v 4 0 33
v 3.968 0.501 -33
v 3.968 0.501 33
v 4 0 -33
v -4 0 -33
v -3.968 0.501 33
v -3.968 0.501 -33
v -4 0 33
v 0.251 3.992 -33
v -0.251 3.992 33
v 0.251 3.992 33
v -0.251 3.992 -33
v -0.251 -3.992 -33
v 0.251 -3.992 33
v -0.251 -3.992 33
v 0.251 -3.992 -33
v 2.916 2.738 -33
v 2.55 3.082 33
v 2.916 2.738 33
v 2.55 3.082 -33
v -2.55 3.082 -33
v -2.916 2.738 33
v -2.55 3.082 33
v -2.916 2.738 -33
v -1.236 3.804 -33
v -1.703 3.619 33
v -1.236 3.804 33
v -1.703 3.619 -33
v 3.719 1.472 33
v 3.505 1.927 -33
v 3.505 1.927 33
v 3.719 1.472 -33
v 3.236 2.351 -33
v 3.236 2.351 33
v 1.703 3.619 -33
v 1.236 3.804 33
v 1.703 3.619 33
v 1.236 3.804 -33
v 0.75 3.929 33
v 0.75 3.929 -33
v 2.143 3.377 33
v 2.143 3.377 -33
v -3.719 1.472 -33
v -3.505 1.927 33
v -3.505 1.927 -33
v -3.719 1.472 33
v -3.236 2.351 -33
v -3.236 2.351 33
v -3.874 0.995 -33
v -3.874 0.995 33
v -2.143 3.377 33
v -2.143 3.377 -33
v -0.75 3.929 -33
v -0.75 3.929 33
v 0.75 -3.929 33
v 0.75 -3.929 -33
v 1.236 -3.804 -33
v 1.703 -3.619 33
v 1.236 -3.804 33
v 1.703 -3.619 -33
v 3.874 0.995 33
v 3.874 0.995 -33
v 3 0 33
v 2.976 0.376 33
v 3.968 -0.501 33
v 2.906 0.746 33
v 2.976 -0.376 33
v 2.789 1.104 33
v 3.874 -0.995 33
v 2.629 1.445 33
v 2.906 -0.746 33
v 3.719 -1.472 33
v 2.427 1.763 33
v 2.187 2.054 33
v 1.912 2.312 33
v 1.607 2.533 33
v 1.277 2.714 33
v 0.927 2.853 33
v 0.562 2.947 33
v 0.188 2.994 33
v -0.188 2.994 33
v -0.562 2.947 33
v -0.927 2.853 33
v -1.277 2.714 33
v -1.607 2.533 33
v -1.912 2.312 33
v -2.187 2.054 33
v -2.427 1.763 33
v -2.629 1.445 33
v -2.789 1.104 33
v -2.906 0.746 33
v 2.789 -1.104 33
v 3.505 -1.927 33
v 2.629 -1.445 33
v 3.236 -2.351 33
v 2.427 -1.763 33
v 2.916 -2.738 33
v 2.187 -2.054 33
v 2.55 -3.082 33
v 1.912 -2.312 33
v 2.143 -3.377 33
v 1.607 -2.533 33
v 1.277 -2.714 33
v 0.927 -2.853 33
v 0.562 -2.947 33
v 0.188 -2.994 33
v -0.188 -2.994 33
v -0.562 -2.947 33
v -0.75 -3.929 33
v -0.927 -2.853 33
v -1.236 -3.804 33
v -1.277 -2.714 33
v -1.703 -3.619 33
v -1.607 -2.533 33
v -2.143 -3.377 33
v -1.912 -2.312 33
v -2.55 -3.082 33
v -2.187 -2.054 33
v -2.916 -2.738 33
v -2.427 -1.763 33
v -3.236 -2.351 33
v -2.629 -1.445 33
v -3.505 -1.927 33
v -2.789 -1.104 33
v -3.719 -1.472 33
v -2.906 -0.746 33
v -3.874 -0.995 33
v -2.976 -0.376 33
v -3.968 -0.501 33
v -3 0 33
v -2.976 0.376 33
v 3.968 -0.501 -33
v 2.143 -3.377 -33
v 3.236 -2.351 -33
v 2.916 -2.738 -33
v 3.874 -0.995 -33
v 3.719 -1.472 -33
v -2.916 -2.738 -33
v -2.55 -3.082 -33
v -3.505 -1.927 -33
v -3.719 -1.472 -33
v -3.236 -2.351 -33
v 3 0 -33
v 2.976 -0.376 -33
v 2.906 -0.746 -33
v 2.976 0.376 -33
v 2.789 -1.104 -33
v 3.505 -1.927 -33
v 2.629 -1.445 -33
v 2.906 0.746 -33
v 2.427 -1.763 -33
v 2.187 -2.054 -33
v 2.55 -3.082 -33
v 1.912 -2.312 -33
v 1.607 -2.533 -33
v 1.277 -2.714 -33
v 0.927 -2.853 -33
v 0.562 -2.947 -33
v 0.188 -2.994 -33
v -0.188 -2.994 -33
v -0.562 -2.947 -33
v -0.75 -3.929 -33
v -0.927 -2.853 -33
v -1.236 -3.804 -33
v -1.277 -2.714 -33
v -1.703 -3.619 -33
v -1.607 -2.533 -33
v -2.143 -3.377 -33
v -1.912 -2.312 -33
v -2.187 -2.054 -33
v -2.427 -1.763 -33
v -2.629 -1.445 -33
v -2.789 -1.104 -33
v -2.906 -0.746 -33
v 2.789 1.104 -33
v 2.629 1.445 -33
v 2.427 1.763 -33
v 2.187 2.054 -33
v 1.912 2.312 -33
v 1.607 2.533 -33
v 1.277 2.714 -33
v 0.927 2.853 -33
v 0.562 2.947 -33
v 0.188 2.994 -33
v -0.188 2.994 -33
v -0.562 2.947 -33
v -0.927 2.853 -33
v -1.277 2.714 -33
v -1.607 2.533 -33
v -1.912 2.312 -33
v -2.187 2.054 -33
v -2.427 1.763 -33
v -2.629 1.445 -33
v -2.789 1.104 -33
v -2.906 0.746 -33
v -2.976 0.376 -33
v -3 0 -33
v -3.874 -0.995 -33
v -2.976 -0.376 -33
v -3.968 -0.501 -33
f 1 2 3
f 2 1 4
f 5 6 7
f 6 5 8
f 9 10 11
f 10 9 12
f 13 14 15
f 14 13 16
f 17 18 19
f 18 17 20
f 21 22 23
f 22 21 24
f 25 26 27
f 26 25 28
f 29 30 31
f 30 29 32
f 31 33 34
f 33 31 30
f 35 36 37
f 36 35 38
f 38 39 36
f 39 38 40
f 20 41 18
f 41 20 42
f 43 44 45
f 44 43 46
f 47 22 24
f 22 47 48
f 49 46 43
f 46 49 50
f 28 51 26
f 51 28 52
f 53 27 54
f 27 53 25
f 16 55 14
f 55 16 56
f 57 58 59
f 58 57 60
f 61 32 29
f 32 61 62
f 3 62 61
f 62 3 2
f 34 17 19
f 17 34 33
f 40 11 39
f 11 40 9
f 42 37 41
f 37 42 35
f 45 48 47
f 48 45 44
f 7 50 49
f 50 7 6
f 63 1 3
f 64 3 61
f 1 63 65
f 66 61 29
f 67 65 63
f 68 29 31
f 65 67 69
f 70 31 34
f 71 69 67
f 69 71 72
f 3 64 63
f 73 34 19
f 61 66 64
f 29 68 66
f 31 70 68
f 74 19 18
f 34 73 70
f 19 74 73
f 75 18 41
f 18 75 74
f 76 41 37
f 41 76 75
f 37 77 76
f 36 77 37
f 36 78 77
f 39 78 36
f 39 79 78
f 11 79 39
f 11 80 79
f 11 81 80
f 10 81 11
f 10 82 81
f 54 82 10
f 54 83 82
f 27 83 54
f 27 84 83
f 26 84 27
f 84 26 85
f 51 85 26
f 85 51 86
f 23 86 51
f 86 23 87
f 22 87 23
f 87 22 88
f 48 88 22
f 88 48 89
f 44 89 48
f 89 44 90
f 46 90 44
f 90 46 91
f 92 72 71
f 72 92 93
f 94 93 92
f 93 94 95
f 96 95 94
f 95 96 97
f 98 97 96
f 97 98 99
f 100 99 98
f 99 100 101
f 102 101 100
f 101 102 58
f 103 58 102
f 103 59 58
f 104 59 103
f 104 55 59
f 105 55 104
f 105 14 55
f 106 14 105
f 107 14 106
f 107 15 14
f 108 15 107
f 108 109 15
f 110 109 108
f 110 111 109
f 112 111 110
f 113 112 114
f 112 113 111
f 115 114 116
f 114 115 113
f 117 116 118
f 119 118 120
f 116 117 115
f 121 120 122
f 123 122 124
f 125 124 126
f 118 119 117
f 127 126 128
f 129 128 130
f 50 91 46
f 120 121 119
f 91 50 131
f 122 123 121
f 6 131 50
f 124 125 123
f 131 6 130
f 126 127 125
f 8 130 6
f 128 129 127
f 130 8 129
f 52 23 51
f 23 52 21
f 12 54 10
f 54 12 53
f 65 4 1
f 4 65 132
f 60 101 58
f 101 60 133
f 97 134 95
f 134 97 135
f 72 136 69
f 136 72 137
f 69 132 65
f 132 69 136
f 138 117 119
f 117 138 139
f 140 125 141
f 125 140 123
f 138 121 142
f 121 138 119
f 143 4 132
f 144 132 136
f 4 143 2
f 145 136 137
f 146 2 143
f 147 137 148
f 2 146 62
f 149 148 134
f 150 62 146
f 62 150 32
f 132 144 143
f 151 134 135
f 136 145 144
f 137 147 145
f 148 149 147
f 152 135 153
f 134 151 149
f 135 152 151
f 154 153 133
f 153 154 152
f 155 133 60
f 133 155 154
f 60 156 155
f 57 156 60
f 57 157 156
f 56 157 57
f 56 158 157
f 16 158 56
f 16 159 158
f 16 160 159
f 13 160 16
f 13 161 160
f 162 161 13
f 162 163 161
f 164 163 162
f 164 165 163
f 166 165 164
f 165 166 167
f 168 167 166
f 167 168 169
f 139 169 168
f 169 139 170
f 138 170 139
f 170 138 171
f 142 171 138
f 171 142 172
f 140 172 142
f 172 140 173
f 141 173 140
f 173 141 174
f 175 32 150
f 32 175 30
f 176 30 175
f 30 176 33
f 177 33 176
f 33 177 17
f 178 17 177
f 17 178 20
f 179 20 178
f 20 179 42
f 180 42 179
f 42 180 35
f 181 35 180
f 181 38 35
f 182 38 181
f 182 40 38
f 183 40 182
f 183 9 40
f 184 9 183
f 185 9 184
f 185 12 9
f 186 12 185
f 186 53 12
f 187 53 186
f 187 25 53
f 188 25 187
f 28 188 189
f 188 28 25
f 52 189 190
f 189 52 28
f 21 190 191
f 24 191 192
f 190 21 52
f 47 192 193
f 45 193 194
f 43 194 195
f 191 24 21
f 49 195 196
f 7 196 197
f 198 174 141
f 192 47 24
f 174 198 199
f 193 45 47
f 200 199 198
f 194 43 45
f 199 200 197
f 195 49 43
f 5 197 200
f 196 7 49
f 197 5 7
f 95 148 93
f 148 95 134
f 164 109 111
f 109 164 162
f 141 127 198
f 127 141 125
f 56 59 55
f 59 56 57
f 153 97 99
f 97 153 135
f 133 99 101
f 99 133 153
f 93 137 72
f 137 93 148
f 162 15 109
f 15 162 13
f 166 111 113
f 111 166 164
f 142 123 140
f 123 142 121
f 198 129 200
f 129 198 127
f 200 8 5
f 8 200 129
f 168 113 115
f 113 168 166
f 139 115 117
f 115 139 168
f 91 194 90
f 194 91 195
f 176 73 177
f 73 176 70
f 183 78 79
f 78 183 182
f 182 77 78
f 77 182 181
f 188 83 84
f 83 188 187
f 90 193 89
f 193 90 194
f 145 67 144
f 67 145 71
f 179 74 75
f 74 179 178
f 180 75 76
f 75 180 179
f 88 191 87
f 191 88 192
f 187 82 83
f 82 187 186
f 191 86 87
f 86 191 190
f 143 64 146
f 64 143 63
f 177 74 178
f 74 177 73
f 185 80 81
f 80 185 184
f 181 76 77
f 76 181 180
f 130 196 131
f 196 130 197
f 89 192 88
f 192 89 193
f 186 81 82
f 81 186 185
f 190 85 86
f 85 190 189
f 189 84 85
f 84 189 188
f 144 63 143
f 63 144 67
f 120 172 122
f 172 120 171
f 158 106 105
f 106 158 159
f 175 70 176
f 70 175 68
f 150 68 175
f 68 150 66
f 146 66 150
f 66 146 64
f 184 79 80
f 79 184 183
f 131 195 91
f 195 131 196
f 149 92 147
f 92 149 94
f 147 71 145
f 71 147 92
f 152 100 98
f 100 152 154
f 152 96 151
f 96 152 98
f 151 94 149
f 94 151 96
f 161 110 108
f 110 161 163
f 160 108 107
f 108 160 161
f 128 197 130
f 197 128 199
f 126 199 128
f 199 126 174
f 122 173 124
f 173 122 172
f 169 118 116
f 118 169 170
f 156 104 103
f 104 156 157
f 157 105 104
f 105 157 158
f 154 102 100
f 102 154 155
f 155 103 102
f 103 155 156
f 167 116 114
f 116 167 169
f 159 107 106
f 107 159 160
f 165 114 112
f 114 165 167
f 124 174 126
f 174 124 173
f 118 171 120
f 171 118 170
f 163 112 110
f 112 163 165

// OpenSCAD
$fn = 50;


difference() {
	union() {
		translate(v = [0, 0, -33.0000000000]) {
			cylinder(h = 66, r = 4.0000000000);
		}
	}
	union() {
		translate(v = [0, 0, -100.0000000000]) {
			cylinder(h = 200, r = 3);
		}
	}
}
